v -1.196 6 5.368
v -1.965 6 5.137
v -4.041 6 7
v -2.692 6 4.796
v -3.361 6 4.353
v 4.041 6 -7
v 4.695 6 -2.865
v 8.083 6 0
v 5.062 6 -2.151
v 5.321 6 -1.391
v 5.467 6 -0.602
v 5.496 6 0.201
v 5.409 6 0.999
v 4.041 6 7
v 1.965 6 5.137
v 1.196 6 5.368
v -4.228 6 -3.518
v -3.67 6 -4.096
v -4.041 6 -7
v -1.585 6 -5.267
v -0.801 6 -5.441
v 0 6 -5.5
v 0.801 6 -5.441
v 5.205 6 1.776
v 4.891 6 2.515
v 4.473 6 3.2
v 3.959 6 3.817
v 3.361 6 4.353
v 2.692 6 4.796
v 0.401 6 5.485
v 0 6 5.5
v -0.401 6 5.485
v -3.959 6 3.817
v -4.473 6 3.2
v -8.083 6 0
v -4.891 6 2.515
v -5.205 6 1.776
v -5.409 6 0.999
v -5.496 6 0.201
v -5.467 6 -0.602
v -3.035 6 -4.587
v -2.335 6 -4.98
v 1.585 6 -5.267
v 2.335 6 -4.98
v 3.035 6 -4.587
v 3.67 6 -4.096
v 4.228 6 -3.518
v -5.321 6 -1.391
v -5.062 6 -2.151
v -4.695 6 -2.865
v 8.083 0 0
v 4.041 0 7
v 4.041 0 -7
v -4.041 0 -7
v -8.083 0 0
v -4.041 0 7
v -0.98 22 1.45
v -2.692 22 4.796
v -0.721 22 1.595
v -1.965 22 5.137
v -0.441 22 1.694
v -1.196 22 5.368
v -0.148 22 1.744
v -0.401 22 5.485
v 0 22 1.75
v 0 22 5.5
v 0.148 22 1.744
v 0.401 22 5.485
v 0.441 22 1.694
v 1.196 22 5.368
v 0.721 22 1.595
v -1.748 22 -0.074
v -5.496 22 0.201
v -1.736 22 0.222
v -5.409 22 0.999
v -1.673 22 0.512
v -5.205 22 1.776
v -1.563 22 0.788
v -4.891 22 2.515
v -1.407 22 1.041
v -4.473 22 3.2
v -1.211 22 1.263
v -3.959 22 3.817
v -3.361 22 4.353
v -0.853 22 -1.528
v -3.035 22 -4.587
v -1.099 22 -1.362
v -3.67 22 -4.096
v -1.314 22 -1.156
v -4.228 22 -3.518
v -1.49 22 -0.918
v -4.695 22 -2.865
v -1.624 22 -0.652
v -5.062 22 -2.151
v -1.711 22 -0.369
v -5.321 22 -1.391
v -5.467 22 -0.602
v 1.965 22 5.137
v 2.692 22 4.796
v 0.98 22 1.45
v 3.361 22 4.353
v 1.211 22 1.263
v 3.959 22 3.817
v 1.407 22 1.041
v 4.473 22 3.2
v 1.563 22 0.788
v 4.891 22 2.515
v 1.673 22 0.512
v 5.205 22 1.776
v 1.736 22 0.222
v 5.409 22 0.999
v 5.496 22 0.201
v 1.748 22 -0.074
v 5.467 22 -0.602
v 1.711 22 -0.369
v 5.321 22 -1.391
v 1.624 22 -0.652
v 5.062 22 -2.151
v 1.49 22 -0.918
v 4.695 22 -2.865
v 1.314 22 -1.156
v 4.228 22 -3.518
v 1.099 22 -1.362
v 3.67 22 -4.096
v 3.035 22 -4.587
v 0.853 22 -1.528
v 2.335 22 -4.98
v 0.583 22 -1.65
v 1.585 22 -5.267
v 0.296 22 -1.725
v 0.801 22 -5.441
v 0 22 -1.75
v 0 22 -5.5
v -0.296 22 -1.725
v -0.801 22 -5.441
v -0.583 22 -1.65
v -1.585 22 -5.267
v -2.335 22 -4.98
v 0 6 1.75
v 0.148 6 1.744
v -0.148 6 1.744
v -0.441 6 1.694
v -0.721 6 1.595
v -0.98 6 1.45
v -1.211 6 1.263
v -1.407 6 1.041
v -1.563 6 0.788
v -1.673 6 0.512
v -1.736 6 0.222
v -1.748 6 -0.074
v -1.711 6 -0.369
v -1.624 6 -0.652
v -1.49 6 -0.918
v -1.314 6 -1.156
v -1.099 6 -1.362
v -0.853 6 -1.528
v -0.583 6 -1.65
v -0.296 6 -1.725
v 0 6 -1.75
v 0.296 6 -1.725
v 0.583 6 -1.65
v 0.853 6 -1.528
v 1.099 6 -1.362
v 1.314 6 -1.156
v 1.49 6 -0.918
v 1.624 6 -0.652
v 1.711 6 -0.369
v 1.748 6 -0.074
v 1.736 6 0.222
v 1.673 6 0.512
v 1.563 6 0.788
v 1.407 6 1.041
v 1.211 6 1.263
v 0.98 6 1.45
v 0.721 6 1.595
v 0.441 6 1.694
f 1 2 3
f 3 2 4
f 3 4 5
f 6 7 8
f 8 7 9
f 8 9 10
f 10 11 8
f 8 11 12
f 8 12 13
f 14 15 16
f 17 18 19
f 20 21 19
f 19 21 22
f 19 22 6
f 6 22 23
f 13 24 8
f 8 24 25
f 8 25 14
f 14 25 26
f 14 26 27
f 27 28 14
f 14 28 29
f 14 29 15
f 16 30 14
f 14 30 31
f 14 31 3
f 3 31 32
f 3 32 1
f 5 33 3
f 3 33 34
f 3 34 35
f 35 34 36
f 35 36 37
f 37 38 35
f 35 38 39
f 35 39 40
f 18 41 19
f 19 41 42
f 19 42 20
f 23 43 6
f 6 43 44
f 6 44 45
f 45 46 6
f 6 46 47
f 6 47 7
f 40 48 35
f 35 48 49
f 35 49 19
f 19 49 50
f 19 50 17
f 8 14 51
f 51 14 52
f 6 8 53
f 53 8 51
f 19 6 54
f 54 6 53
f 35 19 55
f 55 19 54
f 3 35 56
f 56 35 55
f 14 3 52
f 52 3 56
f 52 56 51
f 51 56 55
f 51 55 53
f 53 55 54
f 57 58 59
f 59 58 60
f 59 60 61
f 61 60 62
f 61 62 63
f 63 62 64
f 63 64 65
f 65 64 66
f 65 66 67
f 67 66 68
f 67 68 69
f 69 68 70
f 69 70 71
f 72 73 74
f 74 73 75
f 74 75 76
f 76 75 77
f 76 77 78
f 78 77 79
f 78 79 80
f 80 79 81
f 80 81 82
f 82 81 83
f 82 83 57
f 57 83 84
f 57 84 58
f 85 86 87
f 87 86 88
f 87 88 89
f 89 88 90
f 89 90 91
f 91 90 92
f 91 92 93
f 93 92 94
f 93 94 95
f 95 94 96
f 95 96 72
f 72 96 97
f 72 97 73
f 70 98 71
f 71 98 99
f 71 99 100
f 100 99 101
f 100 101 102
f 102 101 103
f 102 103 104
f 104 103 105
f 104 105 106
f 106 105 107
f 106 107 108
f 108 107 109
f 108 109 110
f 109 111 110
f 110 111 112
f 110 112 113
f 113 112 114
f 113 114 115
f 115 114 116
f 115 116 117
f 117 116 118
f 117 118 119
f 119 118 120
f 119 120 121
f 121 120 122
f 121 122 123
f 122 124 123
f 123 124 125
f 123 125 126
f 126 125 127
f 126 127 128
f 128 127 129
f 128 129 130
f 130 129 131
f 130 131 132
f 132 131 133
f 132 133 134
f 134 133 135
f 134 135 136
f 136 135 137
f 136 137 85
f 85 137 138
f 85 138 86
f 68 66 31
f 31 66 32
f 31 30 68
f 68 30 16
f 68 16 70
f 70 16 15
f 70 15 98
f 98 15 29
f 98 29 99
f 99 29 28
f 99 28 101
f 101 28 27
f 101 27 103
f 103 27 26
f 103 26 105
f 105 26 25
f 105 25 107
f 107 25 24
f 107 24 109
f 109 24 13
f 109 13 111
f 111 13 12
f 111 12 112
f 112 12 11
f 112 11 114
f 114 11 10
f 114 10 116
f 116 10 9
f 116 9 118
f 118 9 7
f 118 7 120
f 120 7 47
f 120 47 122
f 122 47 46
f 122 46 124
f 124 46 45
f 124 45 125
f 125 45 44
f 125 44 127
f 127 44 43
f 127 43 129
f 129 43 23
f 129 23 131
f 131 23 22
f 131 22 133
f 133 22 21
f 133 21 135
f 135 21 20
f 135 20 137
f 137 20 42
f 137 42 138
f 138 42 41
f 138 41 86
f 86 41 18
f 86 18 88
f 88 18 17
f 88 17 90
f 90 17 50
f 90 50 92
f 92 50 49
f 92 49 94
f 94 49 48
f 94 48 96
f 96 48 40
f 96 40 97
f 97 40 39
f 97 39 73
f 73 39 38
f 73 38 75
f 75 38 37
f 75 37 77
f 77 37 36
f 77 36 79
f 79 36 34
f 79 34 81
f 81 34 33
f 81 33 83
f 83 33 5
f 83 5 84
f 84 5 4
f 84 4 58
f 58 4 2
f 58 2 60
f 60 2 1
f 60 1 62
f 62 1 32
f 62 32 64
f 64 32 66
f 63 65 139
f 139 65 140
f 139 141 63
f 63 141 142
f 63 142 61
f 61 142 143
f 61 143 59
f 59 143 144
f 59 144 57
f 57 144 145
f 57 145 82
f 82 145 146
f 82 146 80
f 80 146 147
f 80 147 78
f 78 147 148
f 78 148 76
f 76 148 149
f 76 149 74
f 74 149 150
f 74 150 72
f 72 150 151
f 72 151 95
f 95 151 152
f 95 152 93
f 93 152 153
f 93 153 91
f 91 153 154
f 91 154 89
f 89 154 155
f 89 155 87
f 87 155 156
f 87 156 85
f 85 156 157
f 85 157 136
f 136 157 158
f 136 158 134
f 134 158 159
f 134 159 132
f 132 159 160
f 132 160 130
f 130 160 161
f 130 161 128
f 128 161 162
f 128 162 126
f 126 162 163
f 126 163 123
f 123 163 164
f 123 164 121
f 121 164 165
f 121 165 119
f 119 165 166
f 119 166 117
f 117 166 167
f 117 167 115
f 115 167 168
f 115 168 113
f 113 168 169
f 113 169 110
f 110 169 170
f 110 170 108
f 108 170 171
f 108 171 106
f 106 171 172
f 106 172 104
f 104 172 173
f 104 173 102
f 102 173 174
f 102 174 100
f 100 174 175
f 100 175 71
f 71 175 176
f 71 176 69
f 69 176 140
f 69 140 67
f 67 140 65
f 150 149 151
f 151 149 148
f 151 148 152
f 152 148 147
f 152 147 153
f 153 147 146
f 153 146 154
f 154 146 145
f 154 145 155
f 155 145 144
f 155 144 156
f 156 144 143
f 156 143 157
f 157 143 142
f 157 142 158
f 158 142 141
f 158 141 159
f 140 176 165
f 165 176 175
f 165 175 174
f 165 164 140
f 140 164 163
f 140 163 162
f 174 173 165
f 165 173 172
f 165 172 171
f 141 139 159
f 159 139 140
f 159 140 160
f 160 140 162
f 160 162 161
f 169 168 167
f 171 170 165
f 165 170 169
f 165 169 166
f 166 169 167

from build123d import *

# Parameters (mm, degrees)
BOSS_EXTRUDE1_DEPTH = 6
SKETCH2_R           = 5.5
SKETCH2_R_2         = 1.75
BOSS_EXTRUDE2_DEPTH = 16


with BuildPart() as part:
    # Sketch1 → Boss-Extrude1 (new body)
    with BuildSketch(Plane(origin=(0, 0, 0), x_dir=(1, 0, 0), z_dir=(0, 1, 0))):
        Polygon((8.082903769, 0), (4.041451884, 7), (-4.041451884, 7), (-8.082903769, 0), (-4.041451884, -7), (4.041451884, -7), align=None)
    extrude(amount=BOSS_EXTRUDE1_DEPTH)

    # Sketch2 → Boss-Extrude2 (add)
    with BuildSketch(Plane(origin=(0, 6, 0), x_dir=(1, 0, 0), z_dir=(0, 1, 0))):
        Circle(SKETCH2_R)
        Circle(SKETCH2_R_2, mode=Mode.SUBTRACT)
    extrude(amount=BOSS_EXTRUDE2_DEPTH)


solid = part.part
